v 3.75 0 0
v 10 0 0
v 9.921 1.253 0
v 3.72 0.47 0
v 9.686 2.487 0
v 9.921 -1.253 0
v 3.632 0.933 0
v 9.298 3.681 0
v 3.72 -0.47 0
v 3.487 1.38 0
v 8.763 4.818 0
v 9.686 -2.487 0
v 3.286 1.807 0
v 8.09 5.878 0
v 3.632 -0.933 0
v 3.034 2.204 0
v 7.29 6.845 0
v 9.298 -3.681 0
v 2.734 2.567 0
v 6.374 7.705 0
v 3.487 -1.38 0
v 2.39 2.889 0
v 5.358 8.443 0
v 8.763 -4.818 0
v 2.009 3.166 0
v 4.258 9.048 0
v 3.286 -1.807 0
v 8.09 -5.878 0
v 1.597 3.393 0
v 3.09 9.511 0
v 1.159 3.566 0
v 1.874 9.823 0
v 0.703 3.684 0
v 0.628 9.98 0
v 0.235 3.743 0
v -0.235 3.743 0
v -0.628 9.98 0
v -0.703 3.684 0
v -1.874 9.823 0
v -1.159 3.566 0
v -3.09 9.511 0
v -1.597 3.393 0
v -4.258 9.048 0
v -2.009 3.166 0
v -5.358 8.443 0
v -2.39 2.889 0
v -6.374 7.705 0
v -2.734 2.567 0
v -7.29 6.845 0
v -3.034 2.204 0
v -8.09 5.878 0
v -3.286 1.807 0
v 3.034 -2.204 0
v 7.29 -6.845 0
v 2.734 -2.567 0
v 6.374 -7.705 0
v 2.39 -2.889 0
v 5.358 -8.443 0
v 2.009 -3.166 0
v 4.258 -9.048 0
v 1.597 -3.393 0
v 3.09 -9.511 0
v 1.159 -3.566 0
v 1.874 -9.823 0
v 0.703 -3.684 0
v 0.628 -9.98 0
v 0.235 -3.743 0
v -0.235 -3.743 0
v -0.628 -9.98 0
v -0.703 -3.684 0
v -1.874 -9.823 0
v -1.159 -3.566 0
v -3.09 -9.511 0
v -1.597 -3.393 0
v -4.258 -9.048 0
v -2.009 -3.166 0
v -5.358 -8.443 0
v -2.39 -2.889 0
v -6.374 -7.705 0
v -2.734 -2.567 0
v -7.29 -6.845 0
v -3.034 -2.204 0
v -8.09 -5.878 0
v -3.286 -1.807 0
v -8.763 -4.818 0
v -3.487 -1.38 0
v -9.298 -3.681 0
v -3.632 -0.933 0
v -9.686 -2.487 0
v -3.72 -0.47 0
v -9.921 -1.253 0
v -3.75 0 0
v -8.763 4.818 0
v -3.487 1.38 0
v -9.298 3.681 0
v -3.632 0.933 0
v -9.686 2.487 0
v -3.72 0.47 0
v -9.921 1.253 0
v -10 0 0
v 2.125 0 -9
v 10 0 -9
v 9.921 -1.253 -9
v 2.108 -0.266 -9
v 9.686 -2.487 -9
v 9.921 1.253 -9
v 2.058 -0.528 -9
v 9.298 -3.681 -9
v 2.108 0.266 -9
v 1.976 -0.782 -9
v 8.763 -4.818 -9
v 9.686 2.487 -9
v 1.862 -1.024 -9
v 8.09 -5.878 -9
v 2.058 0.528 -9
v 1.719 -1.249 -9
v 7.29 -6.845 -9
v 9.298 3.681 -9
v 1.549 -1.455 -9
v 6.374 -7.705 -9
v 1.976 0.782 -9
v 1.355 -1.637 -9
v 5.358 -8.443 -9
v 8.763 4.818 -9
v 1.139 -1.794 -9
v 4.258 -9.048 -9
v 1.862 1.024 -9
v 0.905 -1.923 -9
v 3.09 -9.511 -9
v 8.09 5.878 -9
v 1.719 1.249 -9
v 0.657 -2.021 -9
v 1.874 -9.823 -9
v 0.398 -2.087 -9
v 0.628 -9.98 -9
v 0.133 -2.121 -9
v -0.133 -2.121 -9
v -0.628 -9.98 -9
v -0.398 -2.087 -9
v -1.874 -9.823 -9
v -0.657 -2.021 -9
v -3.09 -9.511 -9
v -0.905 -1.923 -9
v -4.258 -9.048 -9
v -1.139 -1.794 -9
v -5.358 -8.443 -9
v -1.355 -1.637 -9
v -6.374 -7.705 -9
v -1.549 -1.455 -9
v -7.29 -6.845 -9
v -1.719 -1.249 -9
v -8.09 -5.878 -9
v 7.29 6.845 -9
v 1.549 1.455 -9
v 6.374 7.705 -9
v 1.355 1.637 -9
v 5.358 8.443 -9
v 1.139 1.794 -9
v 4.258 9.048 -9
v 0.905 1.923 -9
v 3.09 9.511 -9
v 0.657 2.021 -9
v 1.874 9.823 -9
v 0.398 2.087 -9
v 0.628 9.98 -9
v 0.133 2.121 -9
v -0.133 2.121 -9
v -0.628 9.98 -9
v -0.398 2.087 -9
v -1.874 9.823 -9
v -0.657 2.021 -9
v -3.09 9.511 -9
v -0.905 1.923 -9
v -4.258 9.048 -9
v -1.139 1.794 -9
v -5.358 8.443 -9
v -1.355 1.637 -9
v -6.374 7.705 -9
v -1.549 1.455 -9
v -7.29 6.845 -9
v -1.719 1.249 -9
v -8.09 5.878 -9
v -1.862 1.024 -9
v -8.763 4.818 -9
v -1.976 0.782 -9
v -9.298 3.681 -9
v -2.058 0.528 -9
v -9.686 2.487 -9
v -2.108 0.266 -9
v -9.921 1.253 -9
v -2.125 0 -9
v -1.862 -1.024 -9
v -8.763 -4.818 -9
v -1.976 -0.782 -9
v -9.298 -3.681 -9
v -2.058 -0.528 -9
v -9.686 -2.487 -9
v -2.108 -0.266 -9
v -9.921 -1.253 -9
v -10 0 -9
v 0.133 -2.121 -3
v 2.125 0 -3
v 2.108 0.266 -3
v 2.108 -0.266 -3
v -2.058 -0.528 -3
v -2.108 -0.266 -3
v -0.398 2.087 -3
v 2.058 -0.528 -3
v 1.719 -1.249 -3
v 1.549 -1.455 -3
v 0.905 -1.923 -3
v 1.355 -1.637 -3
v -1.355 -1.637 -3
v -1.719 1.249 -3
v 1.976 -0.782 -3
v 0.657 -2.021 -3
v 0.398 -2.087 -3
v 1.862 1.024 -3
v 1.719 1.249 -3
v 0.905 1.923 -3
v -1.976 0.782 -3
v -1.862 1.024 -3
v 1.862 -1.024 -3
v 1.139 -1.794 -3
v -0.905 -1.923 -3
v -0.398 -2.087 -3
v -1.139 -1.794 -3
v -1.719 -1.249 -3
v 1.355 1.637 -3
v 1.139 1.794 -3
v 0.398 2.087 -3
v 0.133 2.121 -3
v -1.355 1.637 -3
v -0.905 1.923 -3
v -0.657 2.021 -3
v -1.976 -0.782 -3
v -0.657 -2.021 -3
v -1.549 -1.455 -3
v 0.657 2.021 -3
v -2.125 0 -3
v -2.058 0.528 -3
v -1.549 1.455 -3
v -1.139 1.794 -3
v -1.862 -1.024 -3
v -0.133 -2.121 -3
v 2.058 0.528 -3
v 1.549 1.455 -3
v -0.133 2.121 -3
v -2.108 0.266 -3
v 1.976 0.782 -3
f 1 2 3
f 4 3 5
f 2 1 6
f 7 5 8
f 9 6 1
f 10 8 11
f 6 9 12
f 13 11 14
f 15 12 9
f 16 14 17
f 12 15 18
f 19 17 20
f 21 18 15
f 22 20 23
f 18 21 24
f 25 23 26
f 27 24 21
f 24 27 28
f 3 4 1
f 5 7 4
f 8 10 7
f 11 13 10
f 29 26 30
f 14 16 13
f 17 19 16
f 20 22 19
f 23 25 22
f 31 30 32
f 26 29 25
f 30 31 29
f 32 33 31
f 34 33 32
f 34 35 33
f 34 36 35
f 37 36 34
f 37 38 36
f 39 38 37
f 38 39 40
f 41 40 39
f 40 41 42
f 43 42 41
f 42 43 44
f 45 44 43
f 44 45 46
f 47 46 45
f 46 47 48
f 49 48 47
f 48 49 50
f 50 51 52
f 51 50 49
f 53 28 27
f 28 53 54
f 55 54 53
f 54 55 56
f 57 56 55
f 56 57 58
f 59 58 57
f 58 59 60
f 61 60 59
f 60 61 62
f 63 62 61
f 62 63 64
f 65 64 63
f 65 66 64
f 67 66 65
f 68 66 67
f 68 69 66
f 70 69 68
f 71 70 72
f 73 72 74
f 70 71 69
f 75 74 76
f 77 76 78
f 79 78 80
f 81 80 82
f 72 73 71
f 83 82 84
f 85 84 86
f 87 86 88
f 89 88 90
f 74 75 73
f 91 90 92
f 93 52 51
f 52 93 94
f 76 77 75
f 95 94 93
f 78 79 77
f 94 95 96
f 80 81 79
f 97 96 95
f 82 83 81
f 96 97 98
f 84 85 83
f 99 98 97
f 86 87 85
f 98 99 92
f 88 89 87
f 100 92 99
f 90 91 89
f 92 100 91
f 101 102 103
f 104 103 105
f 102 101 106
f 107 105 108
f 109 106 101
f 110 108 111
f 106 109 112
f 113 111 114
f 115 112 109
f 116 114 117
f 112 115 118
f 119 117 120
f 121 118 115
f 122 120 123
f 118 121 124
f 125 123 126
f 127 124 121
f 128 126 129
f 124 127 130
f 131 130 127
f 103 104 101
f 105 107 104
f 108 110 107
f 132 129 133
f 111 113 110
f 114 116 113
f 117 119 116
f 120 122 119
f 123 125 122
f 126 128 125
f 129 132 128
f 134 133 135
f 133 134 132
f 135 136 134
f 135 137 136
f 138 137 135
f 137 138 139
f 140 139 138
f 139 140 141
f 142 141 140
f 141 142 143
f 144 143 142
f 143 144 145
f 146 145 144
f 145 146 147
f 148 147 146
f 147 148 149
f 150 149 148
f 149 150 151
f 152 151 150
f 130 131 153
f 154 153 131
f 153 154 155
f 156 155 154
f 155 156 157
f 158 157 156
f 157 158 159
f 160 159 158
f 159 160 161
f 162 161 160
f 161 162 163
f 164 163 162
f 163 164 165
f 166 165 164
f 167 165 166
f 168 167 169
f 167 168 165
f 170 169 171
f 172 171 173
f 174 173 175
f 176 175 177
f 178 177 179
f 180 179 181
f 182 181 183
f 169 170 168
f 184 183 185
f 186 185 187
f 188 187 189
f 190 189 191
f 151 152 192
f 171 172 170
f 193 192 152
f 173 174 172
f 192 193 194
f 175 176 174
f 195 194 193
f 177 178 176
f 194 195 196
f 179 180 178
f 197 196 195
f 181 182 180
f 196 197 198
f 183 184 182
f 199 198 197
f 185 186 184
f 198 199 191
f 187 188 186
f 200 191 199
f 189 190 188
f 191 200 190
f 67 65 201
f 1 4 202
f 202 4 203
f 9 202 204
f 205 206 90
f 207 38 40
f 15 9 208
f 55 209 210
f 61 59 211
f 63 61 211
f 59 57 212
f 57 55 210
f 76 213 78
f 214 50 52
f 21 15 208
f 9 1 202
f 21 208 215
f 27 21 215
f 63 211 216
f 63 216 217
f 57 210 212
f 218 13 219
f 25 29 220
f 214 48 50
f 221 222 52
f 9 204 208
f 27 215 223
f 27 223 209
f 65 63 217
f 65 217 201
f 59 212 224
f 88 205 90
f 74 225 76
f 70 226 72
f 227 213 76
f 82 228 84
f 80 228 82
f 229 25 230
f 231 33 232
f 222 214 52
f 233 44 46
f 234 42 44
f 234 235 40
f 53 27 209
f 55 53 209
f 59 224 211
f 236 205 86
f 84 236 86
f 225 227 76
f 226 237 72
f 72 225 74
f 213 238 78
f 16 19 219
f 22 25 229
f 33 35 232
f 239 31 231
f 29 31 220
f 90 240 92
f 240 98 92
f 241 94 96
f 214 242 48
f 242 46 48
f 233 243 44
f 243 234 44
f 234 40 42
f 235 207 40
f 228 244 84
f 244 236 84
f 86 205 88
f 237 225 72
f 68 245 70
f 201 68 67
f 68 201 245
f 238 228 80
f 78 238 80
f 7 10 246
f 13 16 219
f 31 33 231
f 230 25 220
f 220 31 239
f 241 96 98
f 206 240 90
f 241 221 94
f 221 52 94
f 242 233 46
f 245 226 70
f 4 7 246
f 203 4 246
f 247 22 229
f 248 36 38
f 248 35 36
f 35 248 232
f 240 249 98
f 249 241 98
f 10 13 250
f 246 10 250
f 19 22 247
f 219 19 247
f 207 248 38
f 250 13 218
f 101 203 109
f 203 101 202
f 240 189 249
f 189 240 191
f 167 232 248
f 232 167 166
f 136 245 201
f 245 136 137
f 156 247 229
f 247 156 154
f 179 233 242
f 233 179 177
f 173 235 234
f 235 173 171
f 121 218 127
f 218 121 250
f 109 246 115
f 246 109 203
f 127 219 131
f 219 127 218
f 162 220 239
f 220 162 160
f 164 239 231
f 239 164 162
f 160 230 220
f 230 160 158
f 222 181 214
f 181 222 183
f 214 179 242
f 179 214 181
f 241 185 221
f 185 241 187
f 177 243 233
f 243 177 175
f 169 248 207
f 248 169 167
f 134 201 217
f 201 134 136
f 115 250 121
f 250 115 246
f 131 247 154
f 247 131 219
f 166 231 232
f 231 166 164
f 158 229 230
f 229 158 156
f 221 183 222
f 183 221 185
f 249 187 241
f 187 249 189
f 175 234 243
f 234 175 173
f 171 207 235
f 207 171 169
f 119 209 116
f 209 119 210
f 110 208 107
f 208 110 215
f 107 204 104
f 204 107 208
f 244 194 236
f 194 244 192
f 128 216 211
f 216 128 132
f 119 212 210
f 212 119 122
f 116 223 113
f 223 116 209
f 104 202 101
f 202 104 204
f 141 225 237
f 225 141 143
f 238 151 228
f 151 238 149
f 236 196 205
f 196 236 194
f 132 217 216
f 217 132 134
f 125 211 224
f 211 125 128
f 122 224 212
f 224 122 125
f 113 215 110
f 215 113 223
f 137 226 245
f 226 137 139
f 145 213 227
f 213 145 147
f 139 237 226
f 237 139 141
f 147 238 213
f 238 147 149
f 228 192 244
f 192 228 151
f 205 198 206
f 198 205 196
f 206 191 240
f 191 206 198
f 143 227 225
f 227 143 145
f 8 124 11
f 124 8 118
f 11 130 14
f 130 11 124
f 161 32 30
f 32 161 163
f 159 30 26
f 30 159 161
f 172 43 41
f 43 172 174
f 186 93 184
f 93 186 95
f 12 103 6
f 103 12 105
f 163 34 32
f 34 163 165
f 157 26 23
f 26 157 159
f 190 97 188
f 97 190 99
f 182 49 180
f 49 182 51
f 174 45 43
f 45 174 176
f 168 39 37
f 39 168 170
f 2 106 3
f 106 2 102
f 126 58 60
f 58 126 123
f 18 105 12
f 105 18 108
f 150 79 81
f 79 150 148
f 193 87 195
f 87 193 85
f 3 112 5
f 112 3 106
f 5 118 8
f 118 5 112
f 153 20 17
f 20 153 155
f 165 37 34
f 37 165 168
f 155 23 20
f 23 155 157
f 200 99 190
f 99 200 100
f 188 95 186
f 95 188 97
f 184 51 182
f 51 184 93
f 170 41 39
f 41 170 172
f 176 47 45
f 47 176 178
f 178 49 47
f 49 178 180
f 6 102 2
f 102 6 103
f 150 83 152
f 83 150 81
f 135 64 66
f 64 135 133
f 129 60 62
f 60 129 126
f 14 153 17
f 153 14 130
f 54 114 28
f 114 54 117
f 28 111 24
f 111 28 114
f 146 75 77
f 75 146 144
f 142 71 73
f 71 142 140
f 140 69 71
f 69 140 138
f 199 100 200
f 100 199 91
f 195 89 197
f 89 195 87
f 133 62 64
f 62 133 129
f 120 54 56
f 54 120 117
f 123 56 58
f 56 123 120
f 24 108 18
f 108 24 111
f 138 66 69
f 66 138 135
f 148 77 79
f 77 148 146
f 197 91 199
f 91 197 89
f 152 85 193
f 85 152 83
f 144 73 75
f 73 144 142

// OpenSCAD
$fn = 50;


difference() {
	union() {
		translate(v = [0, 0, -9.0000000000]) {
			cylinder(h = 9, r = 10.0000000000);
		}
		cylinder(h = 0, r = 16.0000000000);
	}
	union() {
		translate(v = [0, 0, 0]) {
			rotate(a = [0, 0, 0]) {
				difference() {
					union() {
						#translate(v = [0, 0, -9.0000000000]) {
							cylinder(h = 9, r = 2.0000000000);
						}
						#translate(v = [0, 0, -3]) {
							cylinder(h = 3, r1 = 2.1250000000, r2 = 3.7500000000);
						}
						#translate(v = [0, 0, -9.0000000000]) {
							cylinder(h = 9, r = 2.1250000000);
						}
						#translate(v = [0, 0, -9.0000000000]) {
							cylinder(h = 9, r = 2.0000000000);
						}
					}
					union();
				}
			}
		}
	}
}
